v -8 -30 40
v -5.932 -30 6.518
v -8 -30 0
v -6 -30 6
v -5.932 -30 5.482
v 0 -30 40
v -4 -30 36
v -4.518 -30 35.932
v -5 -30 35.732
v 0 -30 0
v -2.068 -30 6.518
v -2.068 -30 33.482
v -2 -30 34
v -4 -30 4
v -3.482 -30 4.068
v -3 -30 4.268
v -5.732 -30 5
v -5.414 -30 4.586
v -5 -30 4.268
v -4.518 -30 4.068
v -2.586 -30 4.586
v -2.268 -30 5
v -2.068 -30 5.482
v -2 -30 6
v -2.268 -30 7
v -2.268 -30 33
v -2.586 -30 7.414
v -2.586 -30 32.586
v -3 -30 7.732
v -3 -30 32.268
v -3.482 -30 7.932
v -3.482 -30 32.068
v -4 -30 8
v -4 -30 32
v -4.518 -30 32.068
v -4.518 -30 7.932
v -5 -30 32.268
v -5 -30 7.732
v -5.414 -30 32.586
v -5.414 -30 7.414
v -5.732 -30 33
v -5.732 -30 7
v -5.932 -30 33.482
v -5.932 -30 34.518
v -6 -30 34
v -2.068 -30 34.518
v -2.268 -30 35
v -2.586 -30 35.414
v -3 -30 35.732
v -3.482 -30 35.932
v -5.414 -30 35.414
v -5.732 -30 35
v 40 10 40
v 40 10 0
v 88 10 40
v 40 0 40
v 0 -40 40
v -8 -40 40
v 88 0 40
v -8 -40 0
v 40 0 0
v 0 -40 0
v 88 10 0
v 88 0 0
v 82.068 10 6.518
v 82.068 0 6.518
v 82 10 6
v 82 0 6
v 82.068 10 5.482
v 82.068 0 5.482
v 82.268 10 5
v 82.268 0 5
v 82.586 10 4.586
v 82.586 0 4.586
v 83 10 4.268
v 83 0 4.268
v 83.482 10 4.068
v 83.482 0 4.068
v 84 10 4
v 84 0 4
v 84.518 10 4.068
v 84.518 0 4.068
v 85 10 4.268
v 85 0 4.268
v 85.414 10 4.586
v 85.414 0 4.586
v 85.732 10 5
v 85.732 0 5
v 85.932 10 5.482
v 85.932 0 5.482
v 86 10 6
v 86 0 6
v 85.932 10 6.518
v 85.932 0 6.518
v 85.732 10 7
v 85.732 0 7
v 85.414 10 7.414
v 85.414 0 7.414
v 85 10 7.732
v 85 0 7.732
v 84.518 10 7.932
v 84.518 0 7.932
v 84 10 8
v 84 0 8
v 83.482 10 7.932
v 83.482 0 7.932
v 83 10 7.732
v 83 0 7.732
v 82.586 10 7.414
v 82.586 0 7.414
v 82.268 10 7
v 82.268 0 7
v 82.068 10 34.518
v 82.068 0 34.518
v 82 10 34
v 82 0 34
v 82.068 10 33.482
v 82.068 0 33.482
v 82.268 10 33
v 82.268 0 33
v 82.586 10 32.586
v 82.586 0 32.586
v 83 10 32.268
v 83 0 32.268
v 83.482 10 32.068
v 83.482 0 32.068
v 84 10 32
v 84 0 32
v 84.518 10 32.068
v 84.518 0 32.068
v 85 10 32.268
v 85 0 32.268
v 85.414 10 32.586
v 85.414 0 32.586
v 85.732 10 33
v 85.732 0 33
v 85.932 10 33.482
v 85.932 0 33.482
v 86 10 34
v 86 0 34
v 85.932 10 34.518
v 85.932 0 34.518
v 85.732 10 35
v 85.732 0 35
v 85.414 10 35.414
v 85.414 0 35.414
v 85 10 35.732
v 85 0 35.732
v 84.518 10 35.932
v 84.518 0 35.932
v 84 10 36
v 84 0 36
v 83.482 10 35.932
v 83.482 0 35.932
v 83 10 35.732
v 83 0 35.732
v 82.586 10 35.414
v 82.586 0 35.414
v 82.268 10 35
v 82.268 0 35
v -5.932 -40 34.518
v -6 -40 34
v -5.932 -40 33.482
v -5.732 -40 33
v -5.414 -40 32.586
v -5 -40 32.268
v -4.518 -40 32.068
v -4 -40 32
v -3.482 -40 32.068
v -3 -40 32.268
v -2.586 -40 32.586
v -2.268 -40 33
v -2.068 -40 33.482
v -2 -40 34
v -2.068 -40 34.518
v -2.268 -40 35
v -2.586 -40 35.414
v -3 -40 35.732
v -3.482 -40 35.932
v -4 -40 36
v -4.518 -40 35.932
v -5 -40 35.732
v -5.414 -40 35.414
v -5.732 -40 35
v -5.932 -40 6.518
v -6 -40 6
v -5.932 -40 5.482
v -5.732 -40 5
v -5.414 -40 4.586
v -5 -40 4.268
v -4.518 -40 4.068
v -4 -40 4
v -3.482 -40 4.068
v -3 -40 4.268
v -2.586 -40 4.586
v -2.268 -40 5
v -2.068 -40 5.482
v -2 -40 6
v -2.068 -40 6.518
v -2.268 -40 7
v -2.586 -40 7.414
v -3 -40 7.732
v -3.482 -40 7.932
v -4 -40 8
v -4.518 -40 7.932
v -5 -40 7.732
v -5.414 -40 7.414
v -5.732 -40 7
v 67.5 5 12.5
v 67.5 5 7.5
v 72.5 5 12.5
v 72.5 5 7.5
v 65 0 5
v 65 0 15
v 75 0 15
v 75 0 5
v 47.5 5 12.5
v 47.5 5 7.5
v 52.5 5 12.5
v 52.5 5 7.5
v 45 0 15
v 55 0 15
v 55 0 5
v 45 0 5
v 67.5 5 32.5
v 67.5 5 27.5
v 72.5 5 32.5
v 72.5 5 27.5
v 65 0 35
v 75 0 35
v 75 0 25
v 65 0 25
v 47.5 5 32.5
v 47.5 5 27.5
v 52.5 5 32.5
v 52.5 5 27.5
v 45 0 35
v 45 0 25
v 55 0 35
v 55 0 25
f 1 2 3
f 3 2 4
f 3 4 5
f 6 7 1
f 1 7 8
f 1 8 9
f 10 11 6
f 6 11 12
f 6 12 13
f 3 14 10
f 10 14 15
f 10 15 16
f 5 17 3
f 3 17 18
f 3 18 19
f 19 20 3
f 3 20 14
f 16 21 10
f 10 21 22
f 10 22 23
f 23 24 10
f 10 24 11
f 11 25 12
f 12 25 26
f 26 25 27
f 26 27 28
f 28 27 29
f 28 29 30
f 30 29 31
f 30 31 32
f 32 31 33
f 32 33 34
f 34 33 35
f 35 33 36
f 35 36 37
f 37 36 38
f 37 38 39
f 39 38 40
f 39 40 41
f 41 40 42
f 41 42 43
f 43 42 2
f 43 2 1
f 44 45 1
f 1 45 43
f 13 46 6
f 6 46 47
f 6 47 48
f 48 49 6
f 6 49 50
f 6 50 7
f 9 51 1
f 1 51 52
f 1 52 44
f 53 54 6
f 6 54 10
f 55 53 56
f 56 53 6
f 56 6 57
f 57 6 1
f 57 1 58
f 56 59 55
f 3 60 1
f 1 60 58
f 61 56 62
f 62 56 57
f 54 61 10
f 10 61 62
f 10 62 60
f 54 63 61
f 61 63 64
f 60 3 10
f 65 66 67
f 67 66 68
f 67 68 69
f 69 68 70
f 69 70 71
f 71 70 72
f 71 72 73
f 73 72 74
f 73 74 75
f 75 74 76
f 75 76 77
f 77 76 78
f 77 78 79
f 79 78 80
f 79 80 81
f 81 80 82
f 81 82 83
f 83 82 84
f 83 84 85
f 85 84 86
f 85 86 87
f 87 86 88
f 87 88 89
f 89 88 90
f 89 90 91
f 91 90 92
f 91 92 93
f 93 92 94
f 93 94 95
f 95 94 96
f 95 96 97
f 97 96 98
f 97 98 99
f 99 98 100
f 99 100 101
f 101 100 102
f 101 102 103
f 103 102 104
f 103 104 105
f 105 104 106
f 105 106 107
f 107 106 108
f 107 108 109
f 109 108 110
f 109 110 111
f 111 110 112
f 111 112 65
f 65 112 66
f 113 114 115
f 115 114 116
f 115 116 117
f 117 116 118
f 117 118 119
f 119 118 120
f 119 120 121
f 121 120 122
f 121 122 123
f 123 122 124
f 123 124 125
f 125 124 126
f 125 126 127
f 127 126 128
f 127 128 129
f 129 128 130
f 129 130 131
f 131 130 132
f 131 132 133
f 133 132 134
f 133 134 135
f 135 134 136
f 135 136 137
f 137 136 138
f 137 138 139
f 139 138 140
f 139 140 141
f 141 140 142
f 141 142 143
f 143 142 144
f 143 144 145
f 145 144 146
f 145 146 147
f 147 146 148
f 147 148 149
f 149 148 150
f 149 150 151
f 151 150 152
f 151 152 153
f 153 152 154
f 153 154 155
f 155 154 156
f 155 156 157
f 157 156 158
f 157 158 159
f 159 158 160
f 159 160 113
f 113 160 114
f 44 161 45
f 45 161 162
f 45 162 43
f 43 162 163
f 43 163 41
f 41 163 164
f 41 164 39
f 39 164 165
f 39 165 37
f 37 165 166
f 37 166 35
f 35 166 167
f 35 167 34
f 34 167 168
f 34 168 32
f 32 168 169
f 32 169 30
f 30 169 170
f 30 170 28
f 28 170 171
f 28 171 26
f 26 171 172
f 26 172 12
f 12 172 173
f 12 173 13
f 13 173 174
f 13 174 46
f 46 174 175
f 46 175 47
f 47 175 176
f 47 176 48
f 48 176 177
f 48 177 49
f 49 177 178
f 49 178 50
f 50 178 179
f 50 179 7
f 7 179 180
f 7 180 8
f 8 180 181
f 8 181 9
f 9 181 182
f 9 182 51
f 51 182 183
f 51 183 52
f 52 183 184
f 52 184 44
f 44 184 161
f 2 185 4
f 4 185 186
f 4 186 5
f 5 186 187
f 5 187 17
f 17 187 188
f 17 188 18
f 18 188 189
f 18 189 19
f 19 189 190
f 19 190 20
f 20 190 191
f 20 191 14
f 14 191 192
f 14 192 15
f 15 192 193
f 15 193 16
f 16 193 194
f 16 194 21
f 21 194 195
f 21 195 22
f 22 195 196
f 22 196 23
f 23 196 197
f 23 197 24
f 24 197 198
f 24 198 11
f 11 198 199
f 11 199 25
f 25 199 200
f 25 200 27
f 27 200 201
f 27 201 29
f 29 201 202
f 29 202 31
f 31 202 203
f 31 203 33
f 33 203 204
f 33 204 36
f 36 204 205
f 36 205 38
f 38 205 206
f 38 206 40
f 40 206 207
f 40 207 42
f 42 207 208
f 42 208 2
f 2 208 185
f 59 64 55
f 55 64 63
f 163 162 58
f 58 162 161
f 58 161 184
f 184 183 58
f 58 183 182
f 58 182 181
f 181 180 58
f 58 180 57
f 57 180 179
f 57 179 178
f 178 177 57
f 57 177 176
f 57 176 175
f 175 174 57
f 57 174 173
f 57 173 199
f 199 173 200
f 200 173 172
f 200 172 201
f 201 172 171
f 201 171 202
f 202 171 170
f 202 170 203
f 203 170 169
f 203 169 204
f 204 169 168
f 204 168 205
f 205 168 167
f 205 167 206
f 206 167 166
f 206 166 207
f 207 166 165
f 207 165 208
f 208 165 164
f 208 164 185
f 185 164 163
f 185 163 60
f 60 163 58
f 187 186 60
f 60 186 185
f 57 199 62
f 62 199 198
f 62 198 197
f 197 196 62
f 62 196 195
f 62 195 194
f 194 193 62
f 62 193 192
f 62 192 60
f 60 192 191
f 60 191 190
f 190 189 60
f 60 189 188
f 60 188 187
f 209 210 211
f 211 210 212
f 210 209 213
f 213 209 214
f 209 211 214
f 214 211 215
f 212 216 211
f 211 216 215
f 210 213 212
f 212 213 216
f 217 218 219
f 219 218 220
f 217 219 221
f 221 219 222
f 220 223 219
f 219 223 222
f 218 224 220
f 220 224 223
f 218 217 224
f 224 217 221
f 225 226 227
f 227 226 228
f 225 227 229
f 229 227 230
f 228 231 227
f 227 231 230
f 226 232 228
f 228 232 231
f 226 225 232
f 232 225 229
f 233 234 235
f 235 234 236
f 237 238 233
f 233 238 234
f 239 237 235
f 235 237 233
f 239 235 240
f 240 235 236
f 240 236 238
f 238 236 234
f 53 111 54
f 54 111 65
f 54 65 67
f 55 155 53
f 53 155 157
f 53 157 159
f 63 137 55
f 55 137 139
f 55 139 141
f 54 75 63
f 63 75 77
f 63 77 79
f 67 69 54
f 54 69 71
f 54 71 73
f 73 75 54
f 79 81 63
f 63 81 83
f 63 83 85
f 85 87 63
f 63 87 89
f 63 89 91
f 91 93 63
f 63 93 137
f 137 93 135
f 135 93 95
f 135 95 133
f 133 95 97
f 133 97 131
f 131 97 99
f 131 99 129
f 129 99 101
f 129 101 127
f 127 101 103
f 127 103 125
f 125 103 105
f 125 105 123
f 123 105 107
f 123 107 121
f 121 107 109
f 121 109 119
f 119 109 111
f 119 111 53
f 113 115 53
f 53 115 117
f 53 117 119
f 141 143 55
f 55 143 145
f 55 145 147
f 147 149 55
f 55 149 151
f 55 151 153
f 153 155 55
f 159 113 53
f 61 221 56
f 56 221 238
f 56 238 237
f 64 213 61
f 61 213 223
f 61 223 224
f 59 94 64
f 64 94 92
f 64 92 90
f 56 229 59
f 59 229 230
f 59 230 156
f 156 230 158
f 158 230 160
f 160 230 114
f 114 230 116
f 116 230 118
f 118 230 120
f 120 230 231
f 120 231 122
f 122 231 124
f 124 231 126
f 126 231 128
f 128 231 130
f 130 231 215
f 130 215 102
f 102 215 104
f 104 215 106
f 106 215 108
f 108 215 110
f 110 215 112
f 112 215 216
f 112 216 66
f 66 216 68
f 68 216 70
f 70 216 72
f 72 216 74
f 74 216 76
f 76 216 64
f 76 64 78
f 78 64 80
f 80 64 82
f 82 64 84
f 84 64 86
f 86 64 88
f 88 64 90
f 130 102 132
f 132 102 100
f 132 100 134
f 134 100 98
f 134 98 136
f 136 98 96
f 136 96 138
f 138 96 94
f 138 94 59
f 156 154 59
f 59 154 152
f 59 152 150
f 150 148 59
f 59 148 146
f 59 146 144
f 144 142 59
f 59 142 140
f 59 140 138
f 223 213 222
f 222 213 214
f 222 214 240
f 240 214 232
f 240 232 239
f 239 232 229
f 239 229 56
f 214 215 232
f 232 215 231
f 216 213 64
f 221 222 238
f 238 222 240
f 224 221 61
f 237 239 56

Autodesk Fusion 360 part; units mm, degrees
sketch "baseplate" plane through (0, 0, 0) normal (0, 1, 0) x (1, 0, 0)
  line L0 (0, 0) -> (80, 0)
  line L1 (80, 0) -> (80, -40)
  line L2 (80, -40) -> (0, -40)
  line L3 (0, -40) -> (0, 0)
  dimension "d1" = 40
  dimension "d2" = 80
extrude "Extrude1" add sketch "baseplate" along normal blind 10
sketch "outside_pryamid" plane through (0, 0, 0) normal (0, 1, 0) x (1, 0, 0)
  line L0 (5, -35) -> (15, -35)
  line L1 (15, -35) -> (15, -25)
  line L2 (15, -25) -> (5, -25)
  line L3 (5, -25) -> (5, -35)
  line L4 (25, -35) -> (35, -35)
  line L5 (35, -35) -> (35, -25)
  line L6 (35, -25) -> (25, -25)
  line L7 (25, -25) -> (25, -35)
  line L8 (45, -35) -> (55, -35)
  line L9 (55, -35) -> (55, -25)
  line L10 (55, -25) -> (45, -25)
  line L11 (45, -25) -> (45, -35)
  line L12 (65, -35) -> (75, -35)
  line L13 (75, -35) -> (75, -25)
  line L14 (75, -25) -> (65, -25)
  line L15 (65, -25) -> (65, -35)
  line L16 (25, -15) -> (35, -15)
  line L17 (35, -15) -> (35, -5)
  line L18 (35, -5) -> (25, -5)
  line L19 (25, -5) -> (25, -15)
  line L20 (5, -15) -> (15, -15)
  line L21 (15, -15) -> (15, -5)
  line L22 (15, -5) -> (5, -5)
  line L23 (5, -5) -> (5, -15)
  line L24 (45, -15) -> (55, -15)
  line L25 (55, -15) -> (55, -5)
  line L26 (55, -5) -> (45, -5)
  line L27 (45, -5) -> (45, -15)
  line L28 (65, -15) -> (75, -15)
  line L29 (75, -15) -> (75, -5)
  line L30 (75, -5) -> (65, -5)
  line L31 (65, -5) -> (65, -15)
  dimension "d5" = 10
  dimension "d6" = 10
ref_plane "WorkPlane1" through (0, 5, 0) normal (0, 1, 0) x (0, 0, 1)
sketch "inside_pryamid" plane through (0, 5, 0) normal (0, 1, 0) x (1, 0, 0)
  line L0 (47.5, -7.5) -> (47.5, -10)
  line L1 (47.5, -12.5) -> (52.5, -12.5)
  line L2 (52.5, -7.5) -> (47.5, -7.5)
  line L3 (47.5, -10) -> (47.5, -12.5)
  line L4 (52.5, -12.5) -> (52.5, -7.5)
  line L5 (67.5, -10) -> (67.5, -12.5)
  line L6 (67.5, -12.5) -> (72.5, -12.5)
  line L7 (67.5, -7.5) -> (67.5, -10)
  line L8 (72.5, -12.5) -> (72.5, -7.5)
  line L9 (72.5, -7.5) -> (67.5, -7.5)
  line L10 (67.5, -10) -> (67.5, -12.5)
  line L11 (67.5, -12.5) -> (72.5, -12.5)
  line L12 (72.5, -12.5) -> (72.5, -7.5)
  line L13 (47.5, -7.5) -> (47.5, -10)
  line L14 (52.5, -12.5) -> (52.5, -7.5)
  line L15 (72.5, -7.5) -> (67.5, -7.5)
  line L16 (47.5, -10) -> (47.5, -12.5)
  line L17 (52.5, -7.5) -> (47.5, -7.5)
  line L18 (67.5, -7.5) -> (67.5, -10)
  line L19 (47.5, -12.5) -> (52.5, -12.5)
  line L20 (72.5, -32.5) -> (72.5, -27.5)
  line L21 (72.5, -27.5) -> (67.5, -27.5)
  line L22 (67.5, -30) -> (67.5, -32.5)
  line L23 (72.5, -27.5) -> (67.5, -27.5)
  line L24 (67.5, -27.5) -> (67.5, -30)
  line L25 (47.5, -30) -> (47.5, -32.5)
  line L26 (67.5, -27.5) -> (67.5, -30)
  line L27 (67.5, -30) -> (67.5, -32.5)
  line L28 (67.5, -32.5) -> (72.5, -32.5)
  line L29 (72.5, -32.5) -> (72.5, -27.5)
  line L30 (47.5, -32.5) -> (52.5, -32.5)
  line L31 (47.5, -32.5) -> (52.5, -32.5)
  line L32 (67.5, -32.5) -> (72.5, -32.5)
  line L33 (52.5, -32.5) -> (52.5, -27.5)
  line L34 (52.5, -27.5) -> (47.5, -27.5)
  line L35 (52.5, -27.5) -> (47.5, -27.5)
  line L36 (47.5, -30) -> (47.5, -32.5)
  line L37 (52.5, -32.5) -> (52.5, -27.5)
  line L38 (47.5, -27.5) -> (47.5, -30)
  line L39 (47.5, -27.5) -> (47.5, -30)
loft "Loft3" cut profiles "outside_pryamid", "inside_pryamid" section 1 contours L8 L9 L10 L11 section 2 contours L25 L30 L31 L33 L34 L35 L36 L37 L38 L39
loft "Loft4" cut profiles "inside_pryamid", "outside_pryamid" section 1 contours L20 L21 L22 L23 L24 L26 L27 L28 L29 L32 section 2 contours L12 L13 L14 L15
loft "Loft7" cut profiles "inside_pryamid", "outside_pryamid" section 1 contours L0 L1 L2 L3 L4 L13 L14 L16 L17 L19 section 2 contours L24 L25 L26 L27
loft "Loft8" cut profiles "inside_pryamid", "outside_pryamid" section 1 contours L5 L6 L7 L8 L9 L10 L11 L12 L15 L18 section 2 contours L28 L29 L30 L31
sketch "sidewall" plane through (0, 0, 0) normal (0, 1, 0) x (1, 0, 0)
  line L0 (0, 0) -> (-8, 0)
  line L1 (-8, 0) -> (-8, -40)
  line L2 (-8, -40) -> (0, -40)
  line L3 (0, -40) -> (0, 0)
  dimension "d12" = 8
extrude "Extrude2" add sketch "sidewall" along normal blind -40 and the other way blind -10
sketch "sidemount" plane through (0, 0, 0) normal (0, 1, 0) x (1, 0, 0)
  line L0 (80, 0) -> (88, 0)
  line L1 (88, 0) -> (88, -40)
  line L2 (88, -40) -> (80, -40)
  line L3 (80, -40) -> (80, 0)
extrude "Extrude3" add sketch "sidemount" along normal blind 10
sketch "Sketch6" plane through (0, 0, 0) normal (0, 1, 0) x (1, 0, 0)
  circle A0 centre (-4, -34) radius 2
  circle A1 centre (-4, -6) radius 2
  circle A2 centre (-4, -34) radius 3.4
  circle A3 centre (-4, -6) radius 3.4
  line L0 (88, 0) -> (84, 0)
  line L1 (84, 0) -> (84, -6)
  line L2 (84, -6) -> (88, -6)
  line L3 (88, -6) -> (88, 0)
  circle A4 centre (84, -34) radius 2
  circle A5 centre (84, -6) radius 2
  dimension "d19" = 4
  dimension "d20" = 4
  dimension "d21" = 6.8
  dimension "d22" = 6.8
  dimension "d25" = 4
  dimension "d26" = 6
  dimension "d27" = 4
  dimension "d28" = 4
extrude "Extrude4" cut sketch "Sketch6" against normal blind 50 contours A0 | A1
extrude "Extrude5" cut sketch "Sketch6" along normal blind 40 contours L1 L2 A5 | L1 L2 A5 | A4
extrude "Extrude6" cut sketch "Sketch6" along normal through all and the other way blind 44 contours A0 | A1
extrude "Extrude7" cut sketch "Sketch6" along normal blind 10 and the other way blind -4 contours A2 | A3
sketch "45" plane through (0, 0, 0) normal (0, 0, 1) x (1, 0, 0)
  line L0 (45, 8) -> (40, 8)
  line L1 (40, 8) -> (40, 10)
  line L2 (40, 10) -> (40, 0)
  line L3 (40, 0) -> (0, -40)
  line L4 (0, -30) -> (47.3606, -30) construction
  line L5 (40, 0) -> (30, 0)
  line L6 (0, -30) -> (0, -40)
  line L7 (21.4627, -11.4663) -> (32.9289, 0)
  line L8 (21.4627, -11.4663) -> (-0.1828, -33.1117)
  line L9 (-0.1828, -33.1117) -> (0, 0)
  line L10 (0, 0) -> (32.9289, 0)
  dimension "d40" = 5
extrude "Extrude8" add sketch "45" along normal blind 40
sketch "Sketch8" plane through (0, 0, 40) normal (0, 0, 1) x (-1, 0, 0)
  line L0 (0, 40) -> (-40, 0)
  line L1 (-40, 0) -> (-88, 0)
  line L2 (-88, 0) -> (-88, -10)
  line L3 (-88, -10) -> (8, -10)
  line L4 (8, -10) -> (8, 40)
  line L5 (8, 40) -> (0, 40)
  line L6 (18.5559, 32.9289) -> (18.5559, -18.6929)
  line L7 (18.5559, -18.6929) -> (-38, -19)
  line L8 (-30, 0) -> (0, 30)
  line L9 (0, 30) -> (18.5559, 30)
  line L10 (-30, 0) -> (-46, -16)
  line L11 (-46, -16) -> (-38, -19)
extrude "Extrude10" cut sketch "Sketch8" against normal blind 50 contours L3 L4 L6 L7 L9 L10 L11 | L3 L4 L8 L9 L10
